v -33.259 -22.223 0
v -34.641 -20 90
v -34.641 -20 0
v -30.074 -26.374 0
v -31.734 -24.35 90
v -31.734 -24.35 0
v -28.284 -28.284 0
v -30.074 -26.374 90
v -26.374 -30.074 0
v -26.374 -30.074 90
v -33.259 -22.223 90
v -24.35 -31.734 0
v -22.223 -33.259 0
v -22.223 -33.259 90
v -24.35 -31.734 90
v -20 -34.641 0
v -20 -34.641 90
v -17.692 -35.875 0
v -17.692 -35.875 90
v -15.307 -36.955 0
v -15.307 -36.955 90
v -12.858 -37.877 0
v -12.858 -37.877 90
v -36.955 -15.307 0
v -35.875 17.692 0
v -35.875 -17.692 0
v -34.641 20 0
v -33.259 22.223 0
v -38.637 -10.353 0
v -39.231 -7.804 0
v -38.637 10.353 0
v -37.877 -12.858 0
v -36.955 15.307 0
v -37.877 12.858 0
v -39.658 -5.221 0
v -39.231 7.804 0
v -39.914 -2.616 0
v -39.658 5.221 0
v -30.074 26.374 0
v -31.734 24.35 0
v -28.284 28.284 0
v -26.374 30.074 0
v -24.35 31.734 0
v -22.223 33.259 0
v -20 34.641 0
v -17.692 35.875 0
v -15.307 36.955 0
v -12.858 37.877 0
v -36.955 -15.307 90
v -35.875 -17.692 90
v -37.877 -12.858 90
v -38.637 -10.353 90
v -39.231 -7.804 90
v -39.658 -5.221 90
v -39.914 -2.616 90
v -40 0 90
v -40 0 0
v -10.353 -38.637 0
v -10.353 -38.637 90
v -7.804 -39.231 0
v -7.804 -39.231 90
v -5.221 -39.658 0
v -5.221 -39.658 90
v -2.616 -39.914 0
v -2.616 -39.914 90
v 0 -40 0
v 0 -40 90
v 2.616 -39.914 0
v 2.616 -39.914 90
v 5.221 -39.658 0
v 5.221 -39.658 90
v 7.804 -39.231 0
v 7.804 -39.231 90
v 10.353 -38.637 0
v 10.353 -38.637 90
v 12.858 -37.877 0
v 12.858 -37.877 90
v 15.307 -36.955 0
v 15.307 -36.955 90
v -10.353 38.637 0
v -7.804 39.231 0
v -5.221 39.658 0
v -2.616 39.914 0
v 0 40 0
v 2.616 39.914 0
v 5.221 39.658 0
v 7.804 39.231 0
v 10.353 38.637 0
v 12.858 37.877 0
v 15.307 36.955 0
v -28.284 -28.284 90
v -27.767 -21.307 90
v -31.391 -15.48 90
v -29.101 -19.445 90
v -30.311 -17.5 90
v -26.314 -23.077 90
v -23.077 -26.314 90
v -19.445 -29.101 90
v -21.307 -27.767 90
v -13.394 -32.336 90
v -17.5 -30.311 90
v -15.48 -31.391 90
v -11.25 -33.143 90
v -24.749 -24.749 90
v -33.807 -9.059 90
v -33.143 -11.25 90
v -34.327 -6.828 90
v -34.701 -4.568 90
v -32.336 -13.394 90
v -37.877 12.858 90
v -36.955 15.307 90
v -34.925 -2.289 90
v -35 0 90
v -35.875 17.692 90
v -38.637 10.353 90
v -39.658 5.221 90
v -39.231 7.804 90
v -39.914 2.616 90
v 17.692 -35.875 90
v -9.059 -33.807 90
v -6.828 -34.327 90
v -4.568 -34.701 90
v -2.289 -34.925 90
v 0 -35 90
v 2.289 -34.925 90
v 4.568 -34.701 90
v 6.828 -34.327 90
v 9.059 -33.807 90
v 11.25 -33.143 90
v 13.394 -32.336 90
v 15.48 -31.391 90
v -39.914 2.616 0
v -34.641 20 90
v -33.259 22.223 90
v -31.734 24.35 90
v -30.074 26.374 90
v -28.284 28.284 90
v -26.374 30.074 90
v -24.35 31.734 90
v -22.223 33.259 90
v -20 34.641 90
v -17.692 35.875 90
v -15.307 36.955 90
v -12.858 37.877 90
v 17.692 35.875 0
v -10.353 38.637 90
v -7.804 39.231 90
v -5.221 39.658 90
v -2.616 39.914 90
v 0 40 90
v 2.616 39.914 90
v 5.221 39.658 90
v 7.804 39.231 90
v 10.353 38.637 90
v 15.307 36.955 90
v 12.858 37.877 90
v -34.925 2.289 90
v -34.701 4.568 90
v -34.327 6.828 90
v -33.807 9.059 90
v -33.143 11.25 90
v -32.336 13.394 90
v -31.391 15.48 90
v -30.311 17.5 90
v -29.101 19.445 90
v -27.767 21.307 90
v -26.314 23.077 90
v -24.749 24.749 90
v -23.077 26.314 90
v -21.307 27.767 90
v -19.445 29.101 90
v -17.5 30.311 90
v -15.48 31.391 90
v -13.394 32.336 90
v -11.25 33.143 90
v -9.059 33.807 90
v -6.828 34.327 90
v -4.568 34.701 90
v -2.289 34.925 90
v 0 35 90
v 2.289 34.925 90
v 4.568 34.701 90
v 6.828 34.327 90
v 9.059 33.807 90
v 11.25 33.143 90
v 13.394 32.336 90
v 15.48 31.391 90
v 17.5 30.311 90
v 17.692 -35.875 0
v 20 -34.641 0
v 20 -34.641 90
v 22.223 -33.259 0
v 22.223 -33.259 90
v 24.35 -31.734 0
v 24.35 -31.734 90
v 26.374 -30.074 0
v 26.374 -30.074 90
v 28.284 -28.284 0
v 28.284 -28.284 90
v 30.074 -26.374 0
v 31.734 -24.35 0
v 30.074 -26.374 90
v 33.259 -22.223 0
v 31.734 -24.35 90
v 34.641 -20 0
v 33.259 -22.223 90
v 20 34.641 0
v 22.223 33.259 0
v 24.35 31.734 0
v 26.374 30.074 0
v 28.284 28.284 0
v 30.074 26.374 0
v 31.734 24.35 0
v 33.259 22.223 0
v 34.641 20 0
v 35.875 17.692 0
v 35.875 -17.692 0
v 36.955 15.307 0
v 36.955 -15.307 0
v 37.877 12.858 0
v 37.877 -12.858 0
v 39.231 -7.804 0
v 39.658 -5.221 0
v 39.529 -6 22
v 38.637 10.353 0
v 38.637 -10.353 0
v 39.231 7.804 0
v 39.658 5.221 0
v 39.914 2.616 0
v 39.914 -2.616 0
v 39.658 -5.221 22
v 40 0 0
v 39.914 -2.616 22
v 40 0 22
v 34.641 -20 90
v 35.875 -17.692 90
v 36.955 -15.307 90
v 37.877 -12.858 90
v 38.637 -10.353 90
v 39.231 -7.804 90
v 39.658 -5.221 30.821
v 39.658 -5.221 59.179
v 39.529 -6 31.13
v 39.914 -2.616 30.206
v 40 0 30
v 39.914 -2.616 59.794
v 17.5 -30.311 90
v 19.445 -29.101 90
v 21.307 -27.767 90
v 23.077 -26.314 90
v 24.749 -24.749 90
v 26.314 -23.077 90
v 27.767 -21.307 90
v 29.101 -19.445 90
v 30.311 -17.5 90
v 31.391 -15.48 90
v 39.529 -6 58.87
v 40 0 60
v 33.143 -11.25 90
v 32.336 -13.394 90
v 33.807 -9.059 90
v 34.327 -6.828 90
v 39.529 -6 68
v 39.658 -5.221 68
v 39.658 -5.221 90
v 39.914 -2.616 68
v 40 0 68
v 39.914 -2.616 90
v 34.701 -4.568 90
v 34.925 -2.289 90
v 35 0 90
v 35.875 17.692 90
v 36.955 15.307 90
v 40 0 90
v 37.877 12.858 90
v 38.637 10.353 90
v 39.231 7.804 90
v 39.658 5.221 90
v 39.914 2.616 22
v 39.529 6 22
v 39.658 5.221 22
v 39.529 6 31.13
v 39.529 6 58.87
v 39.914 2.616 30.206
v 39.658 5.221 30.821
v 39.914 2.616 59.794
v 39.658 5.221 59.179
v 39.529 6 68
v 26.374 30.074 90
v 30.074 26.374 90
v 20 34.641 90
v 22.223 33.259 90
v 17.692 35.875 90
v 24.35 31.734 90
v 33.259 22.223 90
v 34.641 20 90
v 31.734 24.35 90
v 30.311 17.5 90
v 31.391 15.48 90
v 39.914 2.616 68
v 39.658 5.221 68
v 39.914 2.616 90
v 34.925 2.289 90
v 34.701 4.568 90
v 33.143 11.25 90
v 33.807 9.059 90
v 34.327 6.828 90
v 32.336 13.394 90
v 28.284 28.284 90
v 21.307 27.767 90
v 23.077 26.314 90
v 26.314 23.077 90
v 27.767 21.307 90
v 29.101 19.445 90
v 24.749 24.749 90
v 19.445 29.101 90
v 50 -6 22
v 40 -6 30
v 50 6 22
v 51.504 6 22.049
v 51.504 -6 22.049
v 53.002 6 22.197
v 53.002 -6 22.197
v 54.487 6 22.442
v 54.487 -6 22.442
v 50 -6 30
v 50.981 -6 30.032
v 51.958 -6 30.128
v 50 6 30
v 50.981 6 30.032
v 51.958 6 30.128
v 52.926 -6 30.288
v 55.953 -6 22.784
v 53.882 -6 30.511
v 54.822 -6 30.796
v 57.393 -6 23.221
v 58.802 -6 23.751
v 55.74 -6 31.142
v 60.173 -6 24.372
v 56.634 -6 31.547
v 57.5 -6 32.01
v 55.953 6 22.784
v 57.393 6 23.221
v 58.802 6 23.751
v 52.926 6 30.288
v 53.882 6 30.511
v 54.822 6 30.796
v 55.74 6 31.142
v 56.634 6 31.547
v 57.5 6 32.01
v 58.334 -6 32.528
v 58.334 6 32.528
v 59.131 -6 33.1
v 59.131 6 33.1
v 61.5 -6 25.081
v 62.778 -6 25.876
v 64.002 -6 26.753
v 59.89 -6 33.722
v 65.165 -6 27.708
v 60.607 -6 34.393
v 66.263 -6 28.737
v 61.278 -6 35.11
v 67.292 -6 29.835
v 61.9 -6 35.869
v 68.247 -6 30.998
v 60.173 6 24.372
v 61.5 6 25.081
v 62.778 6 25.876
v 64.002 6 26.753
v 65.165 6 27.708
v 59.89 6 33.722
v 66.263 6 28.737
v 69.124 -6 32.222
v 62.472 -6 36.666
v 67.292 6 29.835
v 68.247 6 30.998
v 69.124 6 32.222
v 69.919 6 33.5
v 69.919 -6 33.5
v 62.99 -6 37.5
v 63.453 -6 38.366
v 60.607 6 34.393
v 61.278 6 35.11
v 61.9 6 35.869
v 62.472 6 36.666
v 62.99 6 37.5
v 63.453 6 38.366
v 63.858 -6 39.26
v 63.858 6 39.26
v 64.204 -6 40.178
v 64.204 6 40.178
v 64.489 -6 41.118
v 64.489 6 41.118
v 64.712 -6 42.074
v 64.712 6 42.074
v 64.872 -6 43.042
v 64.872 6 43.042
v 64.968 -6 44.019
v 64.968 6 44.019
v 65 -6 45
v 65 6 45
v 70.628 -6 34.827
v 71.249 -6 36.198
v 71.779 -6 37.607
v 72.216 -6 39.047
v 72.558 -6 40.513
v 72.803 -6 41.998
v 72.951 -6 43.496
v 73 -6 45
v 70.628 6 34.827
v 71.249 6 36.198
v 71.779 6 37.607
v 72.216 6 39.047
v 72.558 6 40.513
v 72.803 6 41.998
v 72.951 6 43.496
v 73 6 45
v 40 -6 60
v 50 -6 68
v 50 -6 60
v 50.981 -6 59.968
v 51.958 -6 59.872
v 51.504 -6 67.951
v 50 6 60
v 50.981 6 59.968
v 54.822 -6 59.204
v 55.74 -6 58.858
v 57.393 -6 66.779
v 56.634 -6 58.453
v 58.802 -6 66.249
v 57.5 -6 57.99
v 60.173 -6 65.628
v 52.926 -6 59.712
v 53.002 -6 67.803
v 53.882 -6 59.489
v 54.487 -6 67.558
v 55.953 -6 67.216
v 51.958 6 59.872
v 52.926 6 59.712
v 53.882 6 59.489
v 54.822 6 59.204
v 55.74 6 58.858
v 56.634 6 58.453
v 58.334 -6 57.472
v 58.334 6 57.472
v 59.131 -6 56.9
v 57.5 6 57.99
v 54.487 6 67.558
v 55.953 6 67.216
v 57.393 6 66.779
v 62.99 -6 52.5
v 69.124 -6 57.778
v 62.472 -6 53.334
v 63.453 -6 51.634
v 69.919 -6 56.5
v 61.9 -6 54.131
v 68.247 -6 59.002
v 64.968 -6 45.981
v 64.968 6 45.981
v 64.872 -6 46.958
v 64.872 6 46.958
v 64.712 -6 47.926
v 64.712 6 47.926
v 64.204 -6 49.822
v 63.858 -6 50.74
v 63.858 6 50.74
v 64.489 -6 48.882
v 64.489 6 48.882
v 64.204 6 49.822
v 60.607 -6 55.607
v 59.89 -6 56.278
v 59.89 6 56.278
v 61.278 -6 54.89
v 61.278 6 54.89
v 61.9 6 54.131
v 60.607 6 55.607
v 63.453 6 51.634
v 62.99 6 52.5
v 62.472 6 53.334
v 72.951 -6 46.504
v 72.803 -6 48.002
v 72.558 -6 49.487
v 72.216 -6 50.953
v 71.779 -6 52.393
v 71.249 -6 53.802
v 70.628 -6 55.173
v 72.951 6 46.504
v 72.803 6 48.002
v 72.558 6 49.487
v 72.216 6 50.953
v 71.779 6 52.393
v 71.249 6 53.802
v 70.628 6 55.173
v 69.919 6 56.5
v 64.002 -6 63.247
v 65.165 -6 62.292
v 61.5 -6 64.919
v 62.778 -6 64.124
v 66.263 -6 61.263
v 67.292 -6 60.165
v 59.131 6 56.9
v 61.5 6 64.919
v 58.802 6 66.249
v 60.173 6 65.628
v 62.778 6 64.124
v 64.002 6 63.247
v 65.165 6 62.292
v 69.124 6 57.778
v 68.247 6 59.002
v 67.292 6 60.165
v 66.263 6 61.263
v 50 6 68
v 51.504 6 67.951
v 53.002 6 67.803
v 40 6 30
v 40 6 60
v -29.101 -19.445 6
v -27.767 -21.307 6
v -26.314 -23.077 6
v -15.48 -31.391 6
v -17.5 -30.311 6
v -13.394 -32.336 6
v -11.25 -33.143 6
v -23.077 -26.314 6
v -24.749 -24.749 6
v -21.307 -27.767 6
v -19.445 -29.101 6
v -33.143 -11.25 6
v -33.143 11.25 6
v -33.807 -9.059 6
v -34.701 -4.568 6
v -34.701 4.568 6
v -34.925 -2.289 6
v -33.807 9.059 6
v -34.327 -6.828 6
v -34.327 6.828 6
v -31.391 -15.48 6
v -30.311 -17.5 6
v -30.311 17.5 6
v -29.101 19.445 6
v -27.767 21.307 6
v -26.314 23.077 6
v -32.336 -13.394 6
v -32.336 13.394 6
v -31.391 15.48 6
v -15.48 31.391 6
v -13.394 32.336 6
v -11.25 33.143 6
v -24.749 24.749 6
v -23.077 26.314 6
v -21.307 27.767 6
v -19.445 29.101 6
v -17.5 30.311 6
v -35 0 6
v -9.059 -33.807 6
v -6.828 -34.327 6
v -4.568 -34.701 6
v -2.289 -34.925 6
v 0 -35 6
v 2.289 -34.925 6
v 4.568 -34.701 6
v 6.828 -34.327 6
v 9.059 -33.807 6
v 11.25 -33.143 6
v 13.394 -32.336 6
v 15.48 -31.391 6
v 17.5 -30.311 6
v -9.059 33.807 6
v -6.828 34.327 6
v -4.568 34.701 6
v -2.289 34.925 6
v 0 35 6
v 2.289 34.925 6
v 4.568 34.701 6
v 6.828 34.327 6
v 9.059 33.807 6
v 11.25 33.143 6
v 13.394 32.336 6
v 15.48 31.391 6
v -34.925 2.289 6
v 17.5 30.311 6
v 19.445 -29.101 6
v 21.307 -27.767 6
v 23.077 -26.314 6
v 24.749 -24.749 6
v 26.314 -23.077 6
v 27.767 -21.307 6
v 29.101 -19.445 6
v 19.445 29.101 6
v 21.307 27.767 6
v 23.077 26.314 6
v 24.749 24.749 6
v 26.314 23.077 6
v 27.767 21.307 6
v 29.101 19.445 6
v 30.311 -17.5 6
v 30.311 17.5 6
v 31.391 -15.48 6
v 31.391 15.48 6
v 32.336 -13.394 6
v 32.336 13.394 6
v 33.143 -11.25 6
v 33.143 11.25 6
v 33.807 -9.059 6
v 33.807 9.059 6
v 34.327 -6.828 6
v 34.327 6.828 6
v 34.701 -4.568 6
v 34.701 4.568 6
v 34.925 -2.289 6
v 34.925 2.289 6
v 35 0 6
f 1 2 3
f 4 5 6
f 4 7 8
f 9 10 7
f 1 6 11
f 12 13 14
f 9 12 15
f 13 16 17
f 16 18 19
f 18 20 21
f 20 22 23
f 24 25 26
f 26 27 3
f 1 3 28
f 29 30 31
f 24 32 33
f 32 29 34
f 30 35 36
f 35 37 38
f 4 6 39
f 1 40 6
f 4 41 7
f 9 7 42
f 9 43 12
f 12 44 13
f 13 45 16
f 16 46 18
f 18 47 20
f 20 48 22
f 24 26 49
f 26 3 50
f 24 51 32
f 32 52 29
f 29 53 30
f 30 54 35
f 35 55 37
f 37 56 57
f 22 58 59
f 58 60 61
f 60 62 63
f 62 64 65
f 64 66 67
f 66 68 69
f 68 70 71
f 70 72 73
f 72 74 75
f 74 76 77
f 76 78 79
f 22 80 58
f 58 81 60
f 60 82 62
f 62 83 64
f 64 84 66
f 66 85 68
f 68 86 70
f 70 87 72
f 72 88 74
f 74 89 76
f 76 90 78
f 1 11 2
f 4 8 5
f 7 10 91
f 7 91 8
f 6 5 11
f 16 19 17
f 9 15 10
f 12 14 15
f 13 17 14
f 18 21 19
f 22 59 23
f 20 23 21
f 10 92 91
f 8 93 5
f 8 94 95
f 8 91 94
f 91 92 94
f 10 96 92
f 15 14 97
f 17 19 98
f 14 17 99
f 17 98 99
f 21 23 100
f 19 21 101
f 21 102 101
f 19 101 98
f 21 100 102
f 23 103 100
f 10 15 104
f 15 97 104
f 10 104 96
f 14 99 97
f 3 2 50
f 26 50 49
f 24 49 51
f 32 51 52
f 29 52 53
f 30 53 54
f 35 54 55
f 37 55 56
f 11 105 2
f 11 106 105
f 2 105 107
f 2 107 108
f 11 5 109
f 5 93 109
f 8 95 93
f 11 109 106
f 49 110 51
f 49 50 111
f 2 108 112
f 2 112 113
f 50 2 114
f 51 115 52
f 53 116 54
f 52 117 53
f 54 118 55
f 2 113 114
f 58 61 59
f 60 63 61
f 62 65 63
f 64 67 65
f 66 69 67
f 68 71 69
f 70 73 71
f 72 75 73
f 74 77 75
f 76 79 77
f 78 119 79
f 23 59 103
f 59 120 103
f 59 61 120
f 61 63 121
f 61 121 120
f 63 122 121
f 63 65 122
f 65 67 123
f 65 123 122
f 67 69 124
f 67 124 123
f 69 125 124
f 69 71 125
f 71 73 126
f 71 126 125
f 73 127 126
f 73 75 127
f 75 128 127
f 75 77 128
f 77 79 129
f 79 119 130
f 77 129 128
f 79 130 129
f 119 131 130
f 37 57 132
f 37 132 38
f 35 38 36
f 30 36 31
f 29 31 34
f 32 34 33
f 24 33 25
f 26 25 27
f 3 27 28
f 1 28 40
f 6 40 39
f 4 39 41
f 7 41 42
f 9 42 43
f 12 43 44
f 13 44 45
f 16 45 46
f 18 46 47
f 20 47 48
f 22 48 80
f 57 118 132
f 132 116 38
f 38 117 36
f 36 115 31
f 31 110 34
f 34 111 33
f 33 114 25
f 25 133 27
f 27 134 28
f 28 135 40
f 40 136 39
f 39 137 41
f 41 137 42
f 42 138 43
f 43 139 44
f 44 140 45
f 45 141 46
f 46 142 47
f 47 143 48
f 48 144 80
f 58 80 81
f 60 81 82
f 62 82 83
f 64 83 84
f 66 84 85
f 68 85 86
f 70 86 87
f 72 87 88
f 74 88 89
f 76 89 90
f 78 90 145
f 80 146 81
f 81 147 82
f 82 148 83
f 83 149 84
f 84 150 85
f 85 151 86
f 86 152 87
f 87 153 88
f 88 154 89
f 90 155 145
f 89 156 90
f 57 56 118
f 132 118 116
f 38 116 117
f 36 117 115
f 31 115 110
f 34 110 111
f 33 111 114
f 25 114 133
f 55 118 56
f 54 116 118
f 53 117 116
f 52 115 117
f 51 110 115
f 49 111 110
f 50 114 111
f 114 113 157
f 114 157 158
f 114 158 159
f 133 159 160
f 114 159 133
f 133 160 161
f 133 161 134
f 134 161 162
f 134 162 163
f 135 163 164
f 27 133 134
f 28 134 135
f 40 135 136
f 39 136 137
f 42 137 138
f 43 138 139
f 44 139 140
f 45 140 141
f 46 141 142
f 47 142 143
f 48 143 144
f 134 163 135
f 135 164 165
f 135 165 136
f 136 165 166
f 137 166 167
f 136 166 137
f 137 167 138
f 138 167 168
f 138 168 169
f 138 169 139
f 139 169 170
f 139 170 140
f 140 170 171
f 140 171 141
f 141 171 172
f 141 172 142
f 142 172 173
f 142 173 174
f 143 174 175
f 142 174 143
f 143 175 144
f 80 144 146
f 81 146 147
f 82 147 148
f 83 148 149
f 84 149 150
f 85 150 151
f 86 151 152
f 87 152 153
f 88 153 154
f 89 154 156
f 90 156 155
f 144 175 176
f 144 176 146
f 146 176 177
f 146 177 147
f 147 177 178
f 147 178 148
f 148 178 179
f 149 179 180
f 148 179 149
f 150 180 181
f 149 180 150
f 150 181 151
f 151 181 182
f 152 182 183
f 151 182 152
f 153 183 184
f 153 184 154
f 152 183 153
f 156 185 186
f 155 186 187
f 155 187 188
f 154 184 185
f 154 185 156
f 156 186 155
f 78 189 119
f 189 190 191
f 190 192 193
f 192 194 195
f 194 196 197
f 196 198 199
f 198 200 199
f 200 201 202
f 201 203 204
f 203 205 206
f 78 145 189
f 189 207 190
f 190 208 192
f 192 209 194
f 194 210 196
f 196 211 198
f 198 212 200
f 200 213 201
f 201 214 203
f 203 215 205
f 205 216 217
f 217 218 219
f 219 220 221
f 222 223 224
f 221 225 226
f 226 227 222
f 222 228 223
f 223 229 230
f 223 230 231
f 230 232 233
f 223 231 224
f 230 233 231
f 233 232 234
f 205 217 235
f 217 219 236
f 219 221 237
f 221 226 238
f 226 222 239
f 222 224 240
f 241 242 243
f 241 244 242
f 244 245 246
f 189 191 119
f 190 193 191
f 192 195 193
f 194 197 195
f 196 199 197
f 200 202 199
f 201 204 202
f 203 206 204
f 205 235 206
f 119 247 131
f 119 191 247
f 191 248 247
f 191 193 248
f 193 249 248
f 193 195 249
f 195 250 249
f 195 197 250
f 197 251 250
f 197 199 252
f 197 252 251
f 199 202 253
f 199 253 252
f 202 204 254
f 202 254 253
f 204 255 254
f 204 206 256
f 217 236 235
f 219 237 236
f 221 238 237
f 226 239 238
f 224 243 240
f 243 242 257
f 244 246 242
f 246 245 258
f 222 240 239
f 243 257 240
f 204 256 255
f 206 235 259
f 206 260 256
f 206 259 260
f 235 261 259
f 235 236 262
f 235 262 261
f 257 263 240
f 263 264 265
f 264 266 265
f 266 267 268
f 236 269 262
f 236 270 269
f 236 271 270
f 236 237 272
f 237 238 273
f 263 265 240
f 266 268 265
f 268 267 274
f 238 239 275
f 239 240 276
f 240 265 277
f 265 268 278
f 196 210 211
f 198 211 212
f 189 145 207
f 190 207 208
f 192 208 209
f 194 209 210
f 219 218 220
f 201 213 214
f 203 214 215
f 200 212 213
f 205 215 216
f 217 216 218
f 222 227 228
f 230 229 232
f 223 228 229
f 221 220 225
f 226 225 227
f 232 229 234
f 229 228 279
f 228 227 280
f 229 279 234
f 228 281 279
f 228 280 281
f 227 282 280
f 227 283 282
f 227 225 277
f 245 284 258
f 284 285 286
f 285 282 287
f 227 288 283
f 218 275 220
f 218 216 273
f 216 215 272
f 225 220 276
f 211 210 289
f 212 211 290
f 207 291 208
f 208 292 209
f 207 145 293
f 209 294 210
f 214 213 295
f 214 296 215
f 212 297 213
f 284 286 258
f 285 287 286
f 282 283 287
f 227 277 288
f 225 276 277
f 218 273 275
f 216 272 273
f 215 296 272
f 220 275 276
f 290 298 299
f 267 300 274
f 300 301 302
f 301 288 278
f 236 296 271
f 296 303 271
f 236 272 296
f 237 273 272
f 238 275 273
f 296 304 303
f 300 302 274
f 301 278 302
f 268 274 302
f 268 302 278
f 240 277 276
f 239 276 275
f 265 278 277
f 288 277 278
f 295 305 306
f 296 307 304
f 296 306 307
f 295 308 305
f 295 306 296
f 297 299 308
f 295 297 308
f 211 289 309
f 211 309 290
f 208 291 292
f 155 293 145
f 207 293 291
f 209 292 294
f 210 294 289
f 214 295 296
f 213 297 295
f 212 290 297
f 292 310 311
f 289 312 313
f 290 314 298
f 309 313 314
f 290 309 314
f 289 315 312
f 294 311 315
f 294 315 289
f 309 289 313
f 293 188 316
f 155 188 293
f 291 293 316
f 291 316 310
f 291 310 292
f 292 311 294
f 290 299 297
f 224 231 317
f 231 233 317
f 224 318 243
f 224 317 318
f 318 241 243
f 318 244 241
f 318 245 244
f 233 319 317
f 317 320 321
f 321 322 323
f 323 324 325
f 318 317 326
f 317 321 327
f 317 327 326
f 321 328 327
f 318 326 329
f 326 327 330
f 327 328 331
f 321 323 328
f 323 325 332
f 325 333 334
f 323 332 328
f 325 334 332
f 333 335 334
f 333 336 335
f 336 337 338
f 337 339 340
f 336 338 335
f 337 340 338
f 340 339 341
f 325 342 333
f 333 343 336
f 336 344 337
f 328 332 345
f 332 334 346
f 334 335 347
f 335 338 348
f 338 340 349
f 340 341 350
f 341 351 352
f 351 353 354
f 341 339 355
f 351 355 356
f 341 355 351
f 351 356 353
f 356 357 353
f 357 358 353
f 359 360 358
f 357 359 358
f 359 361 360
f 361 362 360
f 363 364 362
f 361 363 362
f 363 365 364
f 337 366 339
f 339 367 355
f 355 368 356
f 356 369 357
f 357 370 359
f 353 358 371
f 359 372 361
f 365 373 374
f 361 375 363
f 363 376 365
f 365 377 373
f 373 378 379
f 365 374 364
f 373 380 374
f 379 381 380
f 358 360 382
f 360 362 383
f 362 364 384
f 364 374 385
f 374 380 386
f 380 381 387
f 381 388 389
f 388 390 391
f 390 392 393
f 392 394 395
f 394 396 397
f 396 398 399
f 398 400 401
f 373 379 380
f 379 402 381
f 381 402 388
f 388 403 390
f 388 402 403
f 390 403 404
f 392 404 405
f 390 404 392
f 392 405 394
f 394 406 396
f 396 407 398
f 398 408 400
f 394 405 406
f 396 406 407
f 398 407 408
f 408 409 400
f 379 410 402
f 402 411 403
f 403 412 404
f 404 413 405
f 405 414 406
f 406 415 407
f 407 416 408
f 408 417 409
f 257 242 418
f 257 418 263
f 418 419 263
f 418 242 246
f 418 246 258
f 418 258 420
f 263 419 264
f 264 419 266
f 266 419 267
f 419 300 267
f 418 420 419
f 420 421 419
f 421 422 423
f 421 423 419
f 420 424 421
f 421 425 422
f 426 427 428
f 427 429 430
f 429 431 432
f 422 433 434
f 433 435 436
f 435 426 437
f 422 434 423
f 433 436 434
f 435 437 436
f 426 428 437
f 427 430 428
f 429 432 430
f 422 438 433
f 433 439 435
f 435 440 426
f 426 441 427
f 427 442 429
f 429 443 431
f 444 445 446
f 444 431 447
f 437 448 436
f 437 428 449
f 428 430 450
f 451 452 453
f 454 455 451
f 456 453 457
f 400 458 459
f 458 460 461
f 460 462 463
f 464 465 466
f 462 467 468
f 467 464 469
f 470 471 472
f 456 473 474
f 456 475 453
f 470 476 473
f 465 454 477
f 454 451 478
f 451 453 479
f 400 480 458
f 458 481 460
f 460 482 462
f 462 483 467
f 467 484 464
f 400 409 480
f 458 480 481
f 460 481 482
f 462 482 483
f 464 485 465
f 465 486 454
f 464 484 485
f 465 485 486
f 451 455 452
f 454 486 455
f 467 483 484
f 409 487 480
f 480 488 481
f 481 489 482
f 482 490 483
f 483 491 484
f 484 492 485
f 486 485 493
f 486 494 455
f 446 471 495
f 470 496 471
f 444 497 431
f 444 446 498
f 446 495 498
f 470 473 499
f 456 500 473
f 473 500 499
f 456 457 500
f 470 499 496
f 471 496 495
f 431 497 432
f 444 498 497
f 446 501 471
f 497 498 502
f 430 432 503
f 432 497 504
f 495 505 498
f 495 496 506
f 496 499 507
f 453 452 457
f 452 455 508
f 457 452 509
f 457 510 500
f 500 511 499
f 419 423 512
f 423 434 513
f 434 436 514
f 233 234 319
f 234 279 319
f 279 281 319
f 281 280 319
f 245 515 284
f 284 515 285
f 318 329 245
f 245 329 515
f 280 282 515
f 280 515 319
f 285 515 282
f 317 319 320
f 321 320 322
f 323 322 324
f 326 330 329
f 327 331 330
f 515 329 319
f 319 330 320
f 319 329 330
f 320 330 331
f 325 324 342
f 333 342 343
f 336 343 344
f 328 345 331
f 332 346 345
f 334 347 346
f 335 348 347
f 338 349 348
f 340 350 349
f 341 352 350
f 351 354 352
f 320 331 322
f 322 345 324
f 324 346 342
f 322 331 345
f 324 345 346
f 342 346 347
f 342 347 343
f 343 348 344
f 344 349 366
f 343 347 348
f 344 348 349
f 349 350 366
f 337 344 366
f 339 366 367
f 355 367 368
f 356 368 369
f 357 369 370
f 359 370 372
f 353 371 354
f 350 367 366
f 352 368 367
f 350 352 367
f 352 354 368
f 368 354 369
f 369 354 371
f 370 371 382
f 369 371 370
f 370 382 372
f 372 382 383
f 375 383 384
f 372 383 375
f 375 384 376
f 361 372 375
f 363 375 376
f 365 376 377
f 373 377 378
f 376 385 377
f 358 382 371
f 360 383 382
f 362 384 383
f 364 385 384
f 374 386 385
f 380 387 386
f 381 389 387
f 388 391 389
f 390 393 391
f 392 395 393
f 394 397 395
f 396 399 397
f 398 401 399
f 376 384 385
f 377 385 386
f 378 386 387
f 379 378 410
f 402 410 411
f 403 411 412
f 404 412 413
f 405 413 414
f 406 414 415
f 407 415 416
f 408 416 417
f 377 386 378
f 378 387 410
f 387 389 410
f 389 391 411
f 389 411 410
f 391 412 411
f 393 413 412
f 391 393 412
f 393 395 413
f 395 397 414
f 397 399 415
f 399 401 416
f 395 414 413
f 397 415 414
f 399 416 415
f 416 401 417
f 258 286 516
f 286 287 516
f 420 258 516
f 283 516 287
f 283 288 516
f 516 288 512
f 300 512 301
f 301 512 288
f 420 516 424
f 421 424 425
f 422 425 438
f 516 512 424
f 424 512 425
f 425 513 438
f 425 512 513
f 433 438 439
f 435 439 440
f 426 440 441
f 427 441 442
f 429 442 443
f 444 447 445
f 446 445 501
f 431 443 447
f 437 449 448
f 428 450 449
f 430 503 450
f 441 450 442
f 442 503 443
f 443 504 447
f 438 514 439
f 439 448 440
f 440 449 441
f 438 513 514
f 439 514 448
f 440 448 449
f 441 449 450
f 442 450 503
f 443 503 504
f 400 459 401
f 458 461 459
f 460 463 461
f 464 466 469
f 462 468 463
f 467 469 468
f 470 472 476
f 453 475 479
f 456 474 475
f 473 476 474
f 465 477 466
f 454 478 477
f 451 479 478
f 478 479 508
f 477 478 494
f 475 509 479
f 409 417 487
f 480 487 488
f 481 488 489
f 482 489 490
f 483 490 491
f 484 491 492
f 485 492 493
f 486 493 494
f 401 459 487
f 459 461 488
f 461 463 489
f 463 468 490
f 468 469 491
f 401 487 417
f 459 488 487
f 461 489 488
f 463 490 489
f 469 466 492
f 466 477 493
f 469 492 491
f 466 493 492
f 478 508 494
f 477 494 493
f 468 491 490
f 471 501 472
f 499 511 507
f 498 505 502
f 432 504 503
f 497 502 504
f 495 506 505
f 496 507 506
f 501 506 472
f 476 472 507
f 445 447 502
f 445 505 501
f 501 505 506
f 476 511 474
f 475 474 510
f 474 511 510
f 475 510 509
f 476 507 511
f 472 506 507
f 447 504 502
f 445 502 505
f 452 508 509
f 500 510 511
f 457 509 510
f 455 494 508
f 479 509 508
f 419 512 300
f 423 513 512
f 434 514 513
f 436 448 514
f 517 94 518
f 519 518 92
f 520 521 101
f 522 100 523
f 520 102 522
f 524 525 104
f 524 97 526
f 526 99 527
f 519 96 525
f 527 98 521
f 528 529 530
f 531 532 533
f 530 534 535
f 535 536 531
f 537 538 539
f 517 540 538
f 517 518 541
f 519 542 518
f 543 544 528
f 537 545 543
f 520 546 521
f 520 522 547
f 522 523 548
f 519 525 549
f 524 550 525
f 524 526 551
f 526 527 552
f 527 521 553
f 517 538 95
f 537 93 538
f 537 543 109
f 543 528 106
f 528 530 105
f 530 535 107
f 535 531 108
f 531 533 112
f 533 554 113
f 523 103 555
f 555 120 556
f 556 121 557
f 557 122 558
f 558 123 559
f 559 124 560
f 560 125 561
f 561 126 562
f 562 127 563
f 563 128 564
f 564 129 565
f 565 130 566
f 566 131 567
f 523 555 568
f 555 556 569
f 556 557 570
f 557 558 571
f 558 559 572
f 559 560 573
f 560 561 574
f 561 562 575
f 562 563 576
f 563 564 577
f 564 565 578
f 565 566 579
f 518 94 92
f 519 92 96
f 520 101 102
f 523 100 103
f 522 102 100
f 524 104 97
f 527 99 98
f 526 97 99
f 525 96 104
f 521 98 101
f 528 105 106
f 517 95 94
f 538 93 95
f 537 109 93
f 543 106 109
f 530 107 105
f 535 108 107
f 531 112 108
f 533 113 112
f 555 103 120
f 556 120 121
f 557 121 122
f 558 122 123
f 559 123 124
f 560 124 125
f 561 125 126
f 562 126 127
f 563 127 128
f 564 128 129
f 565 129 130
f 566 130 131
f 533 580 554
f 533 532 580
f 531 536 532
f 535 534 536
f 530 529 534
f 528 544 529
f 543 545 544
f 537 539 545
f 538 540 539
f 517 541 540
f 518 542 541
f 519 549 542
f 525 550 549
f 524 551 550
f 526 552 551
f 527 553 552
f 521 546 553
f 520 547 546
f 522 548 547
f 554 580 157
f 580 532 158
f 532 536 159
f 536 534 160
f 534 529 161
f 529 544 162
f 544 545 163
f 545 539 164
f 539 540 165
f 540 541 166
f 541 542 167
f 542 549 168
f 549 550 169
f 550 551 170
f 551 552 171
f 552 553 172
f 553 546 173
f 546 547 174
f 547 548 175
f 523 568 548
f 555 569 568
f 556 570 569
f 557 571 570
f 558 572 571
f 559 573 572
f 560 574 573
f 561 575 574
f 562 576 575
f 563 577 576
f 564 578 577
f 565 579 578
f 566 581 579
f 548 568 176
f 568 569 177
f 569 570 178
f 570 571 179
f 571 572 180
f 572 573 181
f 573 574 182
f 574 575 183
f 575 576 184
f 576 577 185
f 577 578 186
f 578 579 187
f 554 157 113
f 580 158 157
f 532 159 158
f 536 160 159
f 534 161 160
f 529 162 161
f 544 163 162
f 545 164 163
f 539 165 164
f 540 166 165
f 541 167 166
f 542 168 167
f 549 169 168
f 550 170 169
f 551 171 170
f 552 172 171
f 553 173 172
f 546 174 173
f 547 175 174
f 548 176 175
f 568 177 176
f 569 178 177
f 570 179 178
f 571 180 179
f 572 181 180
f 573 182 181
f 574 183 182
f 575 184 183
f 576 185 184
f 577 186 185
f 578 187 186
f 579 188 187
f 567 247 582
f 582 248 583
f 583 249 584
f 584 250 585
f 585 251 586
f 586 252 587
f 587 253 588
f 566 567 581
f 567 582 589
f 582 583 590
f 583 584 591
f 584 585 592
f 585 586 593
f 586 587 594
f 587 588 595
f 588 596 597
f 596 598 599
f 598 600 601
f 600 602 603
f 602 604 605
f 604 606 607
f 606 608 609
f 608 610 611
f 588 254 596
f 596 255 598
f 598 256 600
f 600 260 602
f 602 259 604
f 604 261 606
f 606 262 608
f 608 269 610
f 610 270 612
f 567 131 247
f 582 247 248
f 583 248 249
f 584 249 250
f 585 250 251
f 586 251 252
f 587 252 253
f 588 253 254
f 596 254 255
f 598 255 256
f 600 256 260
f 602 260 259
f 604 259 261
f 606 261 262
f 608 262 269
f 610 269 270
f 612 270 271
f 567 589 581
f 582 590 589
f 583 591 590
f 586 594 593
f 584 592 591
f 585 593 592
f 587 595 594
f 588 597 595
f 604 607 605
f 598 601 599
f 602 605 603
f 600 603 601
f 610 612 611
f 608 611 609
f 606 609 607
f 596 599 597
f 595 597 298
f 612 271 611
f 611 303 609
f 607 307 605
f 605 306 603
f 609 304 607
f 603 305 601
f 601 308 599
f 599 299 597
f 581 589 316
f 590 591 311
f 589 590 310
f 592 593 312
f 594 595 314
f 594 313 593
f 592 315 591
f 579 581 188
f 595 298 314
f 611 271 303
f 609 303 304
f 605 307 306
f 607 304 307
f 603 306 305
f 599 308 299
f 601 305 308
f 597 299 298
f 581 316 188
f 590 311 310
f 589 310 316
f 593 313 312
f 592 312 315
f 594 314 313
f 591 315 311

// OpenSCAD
/* ============================================================
   マグカップ(取手は +X 方向のみ / D 字形状)
   ============================================================ */

$fn = 96;

/* ---- 本体パラメータ ---- */
outer_d  = 80;      // 外径
inner_d  = 70;      // 内径(肉厚 5mm)
mug_h    = 90;      // 全高
bottom_t = 6;       // 底の厚み

/* ---- 取手パラメータ ---- */
handle_hole_h = 30; // 取手内側の空間:高さ
handle_hole_w = 25; // 取手内側の空間:幅
handle_t      = 8;  // 取手の太さ(半径方向)
handle_w      = 12; // 取手の幅(Y方向)
handle_z      = mug_h / 2;   // 取手の中心高さ(マグ中央)

eps   = 0.01;
R_out = outer_d / 2;
R_in  = inner_d / 2;

/* ---- 取手の 2D 断面(XZ 平面用) ----
   外側:半円 / 本体側:直線 の D 字形
   左端は本体外周より handle_t だけ内側に食い込ませて確実に接続 */
module handle_2d() {
    r_i = handle_hole_h / 2;                 // 内側半円半径 = 15
    r_o = r_i + handle_t;                    // 外側半円半径 = 23
    x_i = R_out;                             // 内側空間の直線部(本体外周)
    x_o = x_i - handle_t;                    // 外形の直線部(本体内部へ埋没)
    cx  = x_i + handle_hole_w - r_i;         // 半円の中心 X

    difference() {
        // 外形(D 字)
        hull() {
            translate([x_o, -r_o]) square([eps, 2 * r_o]);
            translate([cx, 0]) circle(r = r_o);
        }
        // 内側の空間(D 字・30 x 25)
        hull() {
            translate([x_i, -r_i]) square([eps, 2 * r_i]);
            translate([cx, 0]) circle(r = r_i);
        }
    }
}

/* ---- 取手(+X 側のみ・Y 方向に厚み) ---- */
module handle() {
    translate([0, 0, handle_z])
        rotate([90, 0, 0])
            linear_extrude(height = handle_w, center = true)
                handle_2d();
}

/* ---- マグ本体 + 取手 ---- */
module mug() {
    difference() {
        union() {
            cylinder(h = mug_h, d = outer_d);   // 外形
            handle();                           // 取手(確実に union)
        }
        // 内側の中空(底厚 6mm を残して上面は開口)
        translate([0, 0, bottom_t])
            cylinder(h = mug_h - bottom_t + eps, d = inner_d);
    }
}

mug();
